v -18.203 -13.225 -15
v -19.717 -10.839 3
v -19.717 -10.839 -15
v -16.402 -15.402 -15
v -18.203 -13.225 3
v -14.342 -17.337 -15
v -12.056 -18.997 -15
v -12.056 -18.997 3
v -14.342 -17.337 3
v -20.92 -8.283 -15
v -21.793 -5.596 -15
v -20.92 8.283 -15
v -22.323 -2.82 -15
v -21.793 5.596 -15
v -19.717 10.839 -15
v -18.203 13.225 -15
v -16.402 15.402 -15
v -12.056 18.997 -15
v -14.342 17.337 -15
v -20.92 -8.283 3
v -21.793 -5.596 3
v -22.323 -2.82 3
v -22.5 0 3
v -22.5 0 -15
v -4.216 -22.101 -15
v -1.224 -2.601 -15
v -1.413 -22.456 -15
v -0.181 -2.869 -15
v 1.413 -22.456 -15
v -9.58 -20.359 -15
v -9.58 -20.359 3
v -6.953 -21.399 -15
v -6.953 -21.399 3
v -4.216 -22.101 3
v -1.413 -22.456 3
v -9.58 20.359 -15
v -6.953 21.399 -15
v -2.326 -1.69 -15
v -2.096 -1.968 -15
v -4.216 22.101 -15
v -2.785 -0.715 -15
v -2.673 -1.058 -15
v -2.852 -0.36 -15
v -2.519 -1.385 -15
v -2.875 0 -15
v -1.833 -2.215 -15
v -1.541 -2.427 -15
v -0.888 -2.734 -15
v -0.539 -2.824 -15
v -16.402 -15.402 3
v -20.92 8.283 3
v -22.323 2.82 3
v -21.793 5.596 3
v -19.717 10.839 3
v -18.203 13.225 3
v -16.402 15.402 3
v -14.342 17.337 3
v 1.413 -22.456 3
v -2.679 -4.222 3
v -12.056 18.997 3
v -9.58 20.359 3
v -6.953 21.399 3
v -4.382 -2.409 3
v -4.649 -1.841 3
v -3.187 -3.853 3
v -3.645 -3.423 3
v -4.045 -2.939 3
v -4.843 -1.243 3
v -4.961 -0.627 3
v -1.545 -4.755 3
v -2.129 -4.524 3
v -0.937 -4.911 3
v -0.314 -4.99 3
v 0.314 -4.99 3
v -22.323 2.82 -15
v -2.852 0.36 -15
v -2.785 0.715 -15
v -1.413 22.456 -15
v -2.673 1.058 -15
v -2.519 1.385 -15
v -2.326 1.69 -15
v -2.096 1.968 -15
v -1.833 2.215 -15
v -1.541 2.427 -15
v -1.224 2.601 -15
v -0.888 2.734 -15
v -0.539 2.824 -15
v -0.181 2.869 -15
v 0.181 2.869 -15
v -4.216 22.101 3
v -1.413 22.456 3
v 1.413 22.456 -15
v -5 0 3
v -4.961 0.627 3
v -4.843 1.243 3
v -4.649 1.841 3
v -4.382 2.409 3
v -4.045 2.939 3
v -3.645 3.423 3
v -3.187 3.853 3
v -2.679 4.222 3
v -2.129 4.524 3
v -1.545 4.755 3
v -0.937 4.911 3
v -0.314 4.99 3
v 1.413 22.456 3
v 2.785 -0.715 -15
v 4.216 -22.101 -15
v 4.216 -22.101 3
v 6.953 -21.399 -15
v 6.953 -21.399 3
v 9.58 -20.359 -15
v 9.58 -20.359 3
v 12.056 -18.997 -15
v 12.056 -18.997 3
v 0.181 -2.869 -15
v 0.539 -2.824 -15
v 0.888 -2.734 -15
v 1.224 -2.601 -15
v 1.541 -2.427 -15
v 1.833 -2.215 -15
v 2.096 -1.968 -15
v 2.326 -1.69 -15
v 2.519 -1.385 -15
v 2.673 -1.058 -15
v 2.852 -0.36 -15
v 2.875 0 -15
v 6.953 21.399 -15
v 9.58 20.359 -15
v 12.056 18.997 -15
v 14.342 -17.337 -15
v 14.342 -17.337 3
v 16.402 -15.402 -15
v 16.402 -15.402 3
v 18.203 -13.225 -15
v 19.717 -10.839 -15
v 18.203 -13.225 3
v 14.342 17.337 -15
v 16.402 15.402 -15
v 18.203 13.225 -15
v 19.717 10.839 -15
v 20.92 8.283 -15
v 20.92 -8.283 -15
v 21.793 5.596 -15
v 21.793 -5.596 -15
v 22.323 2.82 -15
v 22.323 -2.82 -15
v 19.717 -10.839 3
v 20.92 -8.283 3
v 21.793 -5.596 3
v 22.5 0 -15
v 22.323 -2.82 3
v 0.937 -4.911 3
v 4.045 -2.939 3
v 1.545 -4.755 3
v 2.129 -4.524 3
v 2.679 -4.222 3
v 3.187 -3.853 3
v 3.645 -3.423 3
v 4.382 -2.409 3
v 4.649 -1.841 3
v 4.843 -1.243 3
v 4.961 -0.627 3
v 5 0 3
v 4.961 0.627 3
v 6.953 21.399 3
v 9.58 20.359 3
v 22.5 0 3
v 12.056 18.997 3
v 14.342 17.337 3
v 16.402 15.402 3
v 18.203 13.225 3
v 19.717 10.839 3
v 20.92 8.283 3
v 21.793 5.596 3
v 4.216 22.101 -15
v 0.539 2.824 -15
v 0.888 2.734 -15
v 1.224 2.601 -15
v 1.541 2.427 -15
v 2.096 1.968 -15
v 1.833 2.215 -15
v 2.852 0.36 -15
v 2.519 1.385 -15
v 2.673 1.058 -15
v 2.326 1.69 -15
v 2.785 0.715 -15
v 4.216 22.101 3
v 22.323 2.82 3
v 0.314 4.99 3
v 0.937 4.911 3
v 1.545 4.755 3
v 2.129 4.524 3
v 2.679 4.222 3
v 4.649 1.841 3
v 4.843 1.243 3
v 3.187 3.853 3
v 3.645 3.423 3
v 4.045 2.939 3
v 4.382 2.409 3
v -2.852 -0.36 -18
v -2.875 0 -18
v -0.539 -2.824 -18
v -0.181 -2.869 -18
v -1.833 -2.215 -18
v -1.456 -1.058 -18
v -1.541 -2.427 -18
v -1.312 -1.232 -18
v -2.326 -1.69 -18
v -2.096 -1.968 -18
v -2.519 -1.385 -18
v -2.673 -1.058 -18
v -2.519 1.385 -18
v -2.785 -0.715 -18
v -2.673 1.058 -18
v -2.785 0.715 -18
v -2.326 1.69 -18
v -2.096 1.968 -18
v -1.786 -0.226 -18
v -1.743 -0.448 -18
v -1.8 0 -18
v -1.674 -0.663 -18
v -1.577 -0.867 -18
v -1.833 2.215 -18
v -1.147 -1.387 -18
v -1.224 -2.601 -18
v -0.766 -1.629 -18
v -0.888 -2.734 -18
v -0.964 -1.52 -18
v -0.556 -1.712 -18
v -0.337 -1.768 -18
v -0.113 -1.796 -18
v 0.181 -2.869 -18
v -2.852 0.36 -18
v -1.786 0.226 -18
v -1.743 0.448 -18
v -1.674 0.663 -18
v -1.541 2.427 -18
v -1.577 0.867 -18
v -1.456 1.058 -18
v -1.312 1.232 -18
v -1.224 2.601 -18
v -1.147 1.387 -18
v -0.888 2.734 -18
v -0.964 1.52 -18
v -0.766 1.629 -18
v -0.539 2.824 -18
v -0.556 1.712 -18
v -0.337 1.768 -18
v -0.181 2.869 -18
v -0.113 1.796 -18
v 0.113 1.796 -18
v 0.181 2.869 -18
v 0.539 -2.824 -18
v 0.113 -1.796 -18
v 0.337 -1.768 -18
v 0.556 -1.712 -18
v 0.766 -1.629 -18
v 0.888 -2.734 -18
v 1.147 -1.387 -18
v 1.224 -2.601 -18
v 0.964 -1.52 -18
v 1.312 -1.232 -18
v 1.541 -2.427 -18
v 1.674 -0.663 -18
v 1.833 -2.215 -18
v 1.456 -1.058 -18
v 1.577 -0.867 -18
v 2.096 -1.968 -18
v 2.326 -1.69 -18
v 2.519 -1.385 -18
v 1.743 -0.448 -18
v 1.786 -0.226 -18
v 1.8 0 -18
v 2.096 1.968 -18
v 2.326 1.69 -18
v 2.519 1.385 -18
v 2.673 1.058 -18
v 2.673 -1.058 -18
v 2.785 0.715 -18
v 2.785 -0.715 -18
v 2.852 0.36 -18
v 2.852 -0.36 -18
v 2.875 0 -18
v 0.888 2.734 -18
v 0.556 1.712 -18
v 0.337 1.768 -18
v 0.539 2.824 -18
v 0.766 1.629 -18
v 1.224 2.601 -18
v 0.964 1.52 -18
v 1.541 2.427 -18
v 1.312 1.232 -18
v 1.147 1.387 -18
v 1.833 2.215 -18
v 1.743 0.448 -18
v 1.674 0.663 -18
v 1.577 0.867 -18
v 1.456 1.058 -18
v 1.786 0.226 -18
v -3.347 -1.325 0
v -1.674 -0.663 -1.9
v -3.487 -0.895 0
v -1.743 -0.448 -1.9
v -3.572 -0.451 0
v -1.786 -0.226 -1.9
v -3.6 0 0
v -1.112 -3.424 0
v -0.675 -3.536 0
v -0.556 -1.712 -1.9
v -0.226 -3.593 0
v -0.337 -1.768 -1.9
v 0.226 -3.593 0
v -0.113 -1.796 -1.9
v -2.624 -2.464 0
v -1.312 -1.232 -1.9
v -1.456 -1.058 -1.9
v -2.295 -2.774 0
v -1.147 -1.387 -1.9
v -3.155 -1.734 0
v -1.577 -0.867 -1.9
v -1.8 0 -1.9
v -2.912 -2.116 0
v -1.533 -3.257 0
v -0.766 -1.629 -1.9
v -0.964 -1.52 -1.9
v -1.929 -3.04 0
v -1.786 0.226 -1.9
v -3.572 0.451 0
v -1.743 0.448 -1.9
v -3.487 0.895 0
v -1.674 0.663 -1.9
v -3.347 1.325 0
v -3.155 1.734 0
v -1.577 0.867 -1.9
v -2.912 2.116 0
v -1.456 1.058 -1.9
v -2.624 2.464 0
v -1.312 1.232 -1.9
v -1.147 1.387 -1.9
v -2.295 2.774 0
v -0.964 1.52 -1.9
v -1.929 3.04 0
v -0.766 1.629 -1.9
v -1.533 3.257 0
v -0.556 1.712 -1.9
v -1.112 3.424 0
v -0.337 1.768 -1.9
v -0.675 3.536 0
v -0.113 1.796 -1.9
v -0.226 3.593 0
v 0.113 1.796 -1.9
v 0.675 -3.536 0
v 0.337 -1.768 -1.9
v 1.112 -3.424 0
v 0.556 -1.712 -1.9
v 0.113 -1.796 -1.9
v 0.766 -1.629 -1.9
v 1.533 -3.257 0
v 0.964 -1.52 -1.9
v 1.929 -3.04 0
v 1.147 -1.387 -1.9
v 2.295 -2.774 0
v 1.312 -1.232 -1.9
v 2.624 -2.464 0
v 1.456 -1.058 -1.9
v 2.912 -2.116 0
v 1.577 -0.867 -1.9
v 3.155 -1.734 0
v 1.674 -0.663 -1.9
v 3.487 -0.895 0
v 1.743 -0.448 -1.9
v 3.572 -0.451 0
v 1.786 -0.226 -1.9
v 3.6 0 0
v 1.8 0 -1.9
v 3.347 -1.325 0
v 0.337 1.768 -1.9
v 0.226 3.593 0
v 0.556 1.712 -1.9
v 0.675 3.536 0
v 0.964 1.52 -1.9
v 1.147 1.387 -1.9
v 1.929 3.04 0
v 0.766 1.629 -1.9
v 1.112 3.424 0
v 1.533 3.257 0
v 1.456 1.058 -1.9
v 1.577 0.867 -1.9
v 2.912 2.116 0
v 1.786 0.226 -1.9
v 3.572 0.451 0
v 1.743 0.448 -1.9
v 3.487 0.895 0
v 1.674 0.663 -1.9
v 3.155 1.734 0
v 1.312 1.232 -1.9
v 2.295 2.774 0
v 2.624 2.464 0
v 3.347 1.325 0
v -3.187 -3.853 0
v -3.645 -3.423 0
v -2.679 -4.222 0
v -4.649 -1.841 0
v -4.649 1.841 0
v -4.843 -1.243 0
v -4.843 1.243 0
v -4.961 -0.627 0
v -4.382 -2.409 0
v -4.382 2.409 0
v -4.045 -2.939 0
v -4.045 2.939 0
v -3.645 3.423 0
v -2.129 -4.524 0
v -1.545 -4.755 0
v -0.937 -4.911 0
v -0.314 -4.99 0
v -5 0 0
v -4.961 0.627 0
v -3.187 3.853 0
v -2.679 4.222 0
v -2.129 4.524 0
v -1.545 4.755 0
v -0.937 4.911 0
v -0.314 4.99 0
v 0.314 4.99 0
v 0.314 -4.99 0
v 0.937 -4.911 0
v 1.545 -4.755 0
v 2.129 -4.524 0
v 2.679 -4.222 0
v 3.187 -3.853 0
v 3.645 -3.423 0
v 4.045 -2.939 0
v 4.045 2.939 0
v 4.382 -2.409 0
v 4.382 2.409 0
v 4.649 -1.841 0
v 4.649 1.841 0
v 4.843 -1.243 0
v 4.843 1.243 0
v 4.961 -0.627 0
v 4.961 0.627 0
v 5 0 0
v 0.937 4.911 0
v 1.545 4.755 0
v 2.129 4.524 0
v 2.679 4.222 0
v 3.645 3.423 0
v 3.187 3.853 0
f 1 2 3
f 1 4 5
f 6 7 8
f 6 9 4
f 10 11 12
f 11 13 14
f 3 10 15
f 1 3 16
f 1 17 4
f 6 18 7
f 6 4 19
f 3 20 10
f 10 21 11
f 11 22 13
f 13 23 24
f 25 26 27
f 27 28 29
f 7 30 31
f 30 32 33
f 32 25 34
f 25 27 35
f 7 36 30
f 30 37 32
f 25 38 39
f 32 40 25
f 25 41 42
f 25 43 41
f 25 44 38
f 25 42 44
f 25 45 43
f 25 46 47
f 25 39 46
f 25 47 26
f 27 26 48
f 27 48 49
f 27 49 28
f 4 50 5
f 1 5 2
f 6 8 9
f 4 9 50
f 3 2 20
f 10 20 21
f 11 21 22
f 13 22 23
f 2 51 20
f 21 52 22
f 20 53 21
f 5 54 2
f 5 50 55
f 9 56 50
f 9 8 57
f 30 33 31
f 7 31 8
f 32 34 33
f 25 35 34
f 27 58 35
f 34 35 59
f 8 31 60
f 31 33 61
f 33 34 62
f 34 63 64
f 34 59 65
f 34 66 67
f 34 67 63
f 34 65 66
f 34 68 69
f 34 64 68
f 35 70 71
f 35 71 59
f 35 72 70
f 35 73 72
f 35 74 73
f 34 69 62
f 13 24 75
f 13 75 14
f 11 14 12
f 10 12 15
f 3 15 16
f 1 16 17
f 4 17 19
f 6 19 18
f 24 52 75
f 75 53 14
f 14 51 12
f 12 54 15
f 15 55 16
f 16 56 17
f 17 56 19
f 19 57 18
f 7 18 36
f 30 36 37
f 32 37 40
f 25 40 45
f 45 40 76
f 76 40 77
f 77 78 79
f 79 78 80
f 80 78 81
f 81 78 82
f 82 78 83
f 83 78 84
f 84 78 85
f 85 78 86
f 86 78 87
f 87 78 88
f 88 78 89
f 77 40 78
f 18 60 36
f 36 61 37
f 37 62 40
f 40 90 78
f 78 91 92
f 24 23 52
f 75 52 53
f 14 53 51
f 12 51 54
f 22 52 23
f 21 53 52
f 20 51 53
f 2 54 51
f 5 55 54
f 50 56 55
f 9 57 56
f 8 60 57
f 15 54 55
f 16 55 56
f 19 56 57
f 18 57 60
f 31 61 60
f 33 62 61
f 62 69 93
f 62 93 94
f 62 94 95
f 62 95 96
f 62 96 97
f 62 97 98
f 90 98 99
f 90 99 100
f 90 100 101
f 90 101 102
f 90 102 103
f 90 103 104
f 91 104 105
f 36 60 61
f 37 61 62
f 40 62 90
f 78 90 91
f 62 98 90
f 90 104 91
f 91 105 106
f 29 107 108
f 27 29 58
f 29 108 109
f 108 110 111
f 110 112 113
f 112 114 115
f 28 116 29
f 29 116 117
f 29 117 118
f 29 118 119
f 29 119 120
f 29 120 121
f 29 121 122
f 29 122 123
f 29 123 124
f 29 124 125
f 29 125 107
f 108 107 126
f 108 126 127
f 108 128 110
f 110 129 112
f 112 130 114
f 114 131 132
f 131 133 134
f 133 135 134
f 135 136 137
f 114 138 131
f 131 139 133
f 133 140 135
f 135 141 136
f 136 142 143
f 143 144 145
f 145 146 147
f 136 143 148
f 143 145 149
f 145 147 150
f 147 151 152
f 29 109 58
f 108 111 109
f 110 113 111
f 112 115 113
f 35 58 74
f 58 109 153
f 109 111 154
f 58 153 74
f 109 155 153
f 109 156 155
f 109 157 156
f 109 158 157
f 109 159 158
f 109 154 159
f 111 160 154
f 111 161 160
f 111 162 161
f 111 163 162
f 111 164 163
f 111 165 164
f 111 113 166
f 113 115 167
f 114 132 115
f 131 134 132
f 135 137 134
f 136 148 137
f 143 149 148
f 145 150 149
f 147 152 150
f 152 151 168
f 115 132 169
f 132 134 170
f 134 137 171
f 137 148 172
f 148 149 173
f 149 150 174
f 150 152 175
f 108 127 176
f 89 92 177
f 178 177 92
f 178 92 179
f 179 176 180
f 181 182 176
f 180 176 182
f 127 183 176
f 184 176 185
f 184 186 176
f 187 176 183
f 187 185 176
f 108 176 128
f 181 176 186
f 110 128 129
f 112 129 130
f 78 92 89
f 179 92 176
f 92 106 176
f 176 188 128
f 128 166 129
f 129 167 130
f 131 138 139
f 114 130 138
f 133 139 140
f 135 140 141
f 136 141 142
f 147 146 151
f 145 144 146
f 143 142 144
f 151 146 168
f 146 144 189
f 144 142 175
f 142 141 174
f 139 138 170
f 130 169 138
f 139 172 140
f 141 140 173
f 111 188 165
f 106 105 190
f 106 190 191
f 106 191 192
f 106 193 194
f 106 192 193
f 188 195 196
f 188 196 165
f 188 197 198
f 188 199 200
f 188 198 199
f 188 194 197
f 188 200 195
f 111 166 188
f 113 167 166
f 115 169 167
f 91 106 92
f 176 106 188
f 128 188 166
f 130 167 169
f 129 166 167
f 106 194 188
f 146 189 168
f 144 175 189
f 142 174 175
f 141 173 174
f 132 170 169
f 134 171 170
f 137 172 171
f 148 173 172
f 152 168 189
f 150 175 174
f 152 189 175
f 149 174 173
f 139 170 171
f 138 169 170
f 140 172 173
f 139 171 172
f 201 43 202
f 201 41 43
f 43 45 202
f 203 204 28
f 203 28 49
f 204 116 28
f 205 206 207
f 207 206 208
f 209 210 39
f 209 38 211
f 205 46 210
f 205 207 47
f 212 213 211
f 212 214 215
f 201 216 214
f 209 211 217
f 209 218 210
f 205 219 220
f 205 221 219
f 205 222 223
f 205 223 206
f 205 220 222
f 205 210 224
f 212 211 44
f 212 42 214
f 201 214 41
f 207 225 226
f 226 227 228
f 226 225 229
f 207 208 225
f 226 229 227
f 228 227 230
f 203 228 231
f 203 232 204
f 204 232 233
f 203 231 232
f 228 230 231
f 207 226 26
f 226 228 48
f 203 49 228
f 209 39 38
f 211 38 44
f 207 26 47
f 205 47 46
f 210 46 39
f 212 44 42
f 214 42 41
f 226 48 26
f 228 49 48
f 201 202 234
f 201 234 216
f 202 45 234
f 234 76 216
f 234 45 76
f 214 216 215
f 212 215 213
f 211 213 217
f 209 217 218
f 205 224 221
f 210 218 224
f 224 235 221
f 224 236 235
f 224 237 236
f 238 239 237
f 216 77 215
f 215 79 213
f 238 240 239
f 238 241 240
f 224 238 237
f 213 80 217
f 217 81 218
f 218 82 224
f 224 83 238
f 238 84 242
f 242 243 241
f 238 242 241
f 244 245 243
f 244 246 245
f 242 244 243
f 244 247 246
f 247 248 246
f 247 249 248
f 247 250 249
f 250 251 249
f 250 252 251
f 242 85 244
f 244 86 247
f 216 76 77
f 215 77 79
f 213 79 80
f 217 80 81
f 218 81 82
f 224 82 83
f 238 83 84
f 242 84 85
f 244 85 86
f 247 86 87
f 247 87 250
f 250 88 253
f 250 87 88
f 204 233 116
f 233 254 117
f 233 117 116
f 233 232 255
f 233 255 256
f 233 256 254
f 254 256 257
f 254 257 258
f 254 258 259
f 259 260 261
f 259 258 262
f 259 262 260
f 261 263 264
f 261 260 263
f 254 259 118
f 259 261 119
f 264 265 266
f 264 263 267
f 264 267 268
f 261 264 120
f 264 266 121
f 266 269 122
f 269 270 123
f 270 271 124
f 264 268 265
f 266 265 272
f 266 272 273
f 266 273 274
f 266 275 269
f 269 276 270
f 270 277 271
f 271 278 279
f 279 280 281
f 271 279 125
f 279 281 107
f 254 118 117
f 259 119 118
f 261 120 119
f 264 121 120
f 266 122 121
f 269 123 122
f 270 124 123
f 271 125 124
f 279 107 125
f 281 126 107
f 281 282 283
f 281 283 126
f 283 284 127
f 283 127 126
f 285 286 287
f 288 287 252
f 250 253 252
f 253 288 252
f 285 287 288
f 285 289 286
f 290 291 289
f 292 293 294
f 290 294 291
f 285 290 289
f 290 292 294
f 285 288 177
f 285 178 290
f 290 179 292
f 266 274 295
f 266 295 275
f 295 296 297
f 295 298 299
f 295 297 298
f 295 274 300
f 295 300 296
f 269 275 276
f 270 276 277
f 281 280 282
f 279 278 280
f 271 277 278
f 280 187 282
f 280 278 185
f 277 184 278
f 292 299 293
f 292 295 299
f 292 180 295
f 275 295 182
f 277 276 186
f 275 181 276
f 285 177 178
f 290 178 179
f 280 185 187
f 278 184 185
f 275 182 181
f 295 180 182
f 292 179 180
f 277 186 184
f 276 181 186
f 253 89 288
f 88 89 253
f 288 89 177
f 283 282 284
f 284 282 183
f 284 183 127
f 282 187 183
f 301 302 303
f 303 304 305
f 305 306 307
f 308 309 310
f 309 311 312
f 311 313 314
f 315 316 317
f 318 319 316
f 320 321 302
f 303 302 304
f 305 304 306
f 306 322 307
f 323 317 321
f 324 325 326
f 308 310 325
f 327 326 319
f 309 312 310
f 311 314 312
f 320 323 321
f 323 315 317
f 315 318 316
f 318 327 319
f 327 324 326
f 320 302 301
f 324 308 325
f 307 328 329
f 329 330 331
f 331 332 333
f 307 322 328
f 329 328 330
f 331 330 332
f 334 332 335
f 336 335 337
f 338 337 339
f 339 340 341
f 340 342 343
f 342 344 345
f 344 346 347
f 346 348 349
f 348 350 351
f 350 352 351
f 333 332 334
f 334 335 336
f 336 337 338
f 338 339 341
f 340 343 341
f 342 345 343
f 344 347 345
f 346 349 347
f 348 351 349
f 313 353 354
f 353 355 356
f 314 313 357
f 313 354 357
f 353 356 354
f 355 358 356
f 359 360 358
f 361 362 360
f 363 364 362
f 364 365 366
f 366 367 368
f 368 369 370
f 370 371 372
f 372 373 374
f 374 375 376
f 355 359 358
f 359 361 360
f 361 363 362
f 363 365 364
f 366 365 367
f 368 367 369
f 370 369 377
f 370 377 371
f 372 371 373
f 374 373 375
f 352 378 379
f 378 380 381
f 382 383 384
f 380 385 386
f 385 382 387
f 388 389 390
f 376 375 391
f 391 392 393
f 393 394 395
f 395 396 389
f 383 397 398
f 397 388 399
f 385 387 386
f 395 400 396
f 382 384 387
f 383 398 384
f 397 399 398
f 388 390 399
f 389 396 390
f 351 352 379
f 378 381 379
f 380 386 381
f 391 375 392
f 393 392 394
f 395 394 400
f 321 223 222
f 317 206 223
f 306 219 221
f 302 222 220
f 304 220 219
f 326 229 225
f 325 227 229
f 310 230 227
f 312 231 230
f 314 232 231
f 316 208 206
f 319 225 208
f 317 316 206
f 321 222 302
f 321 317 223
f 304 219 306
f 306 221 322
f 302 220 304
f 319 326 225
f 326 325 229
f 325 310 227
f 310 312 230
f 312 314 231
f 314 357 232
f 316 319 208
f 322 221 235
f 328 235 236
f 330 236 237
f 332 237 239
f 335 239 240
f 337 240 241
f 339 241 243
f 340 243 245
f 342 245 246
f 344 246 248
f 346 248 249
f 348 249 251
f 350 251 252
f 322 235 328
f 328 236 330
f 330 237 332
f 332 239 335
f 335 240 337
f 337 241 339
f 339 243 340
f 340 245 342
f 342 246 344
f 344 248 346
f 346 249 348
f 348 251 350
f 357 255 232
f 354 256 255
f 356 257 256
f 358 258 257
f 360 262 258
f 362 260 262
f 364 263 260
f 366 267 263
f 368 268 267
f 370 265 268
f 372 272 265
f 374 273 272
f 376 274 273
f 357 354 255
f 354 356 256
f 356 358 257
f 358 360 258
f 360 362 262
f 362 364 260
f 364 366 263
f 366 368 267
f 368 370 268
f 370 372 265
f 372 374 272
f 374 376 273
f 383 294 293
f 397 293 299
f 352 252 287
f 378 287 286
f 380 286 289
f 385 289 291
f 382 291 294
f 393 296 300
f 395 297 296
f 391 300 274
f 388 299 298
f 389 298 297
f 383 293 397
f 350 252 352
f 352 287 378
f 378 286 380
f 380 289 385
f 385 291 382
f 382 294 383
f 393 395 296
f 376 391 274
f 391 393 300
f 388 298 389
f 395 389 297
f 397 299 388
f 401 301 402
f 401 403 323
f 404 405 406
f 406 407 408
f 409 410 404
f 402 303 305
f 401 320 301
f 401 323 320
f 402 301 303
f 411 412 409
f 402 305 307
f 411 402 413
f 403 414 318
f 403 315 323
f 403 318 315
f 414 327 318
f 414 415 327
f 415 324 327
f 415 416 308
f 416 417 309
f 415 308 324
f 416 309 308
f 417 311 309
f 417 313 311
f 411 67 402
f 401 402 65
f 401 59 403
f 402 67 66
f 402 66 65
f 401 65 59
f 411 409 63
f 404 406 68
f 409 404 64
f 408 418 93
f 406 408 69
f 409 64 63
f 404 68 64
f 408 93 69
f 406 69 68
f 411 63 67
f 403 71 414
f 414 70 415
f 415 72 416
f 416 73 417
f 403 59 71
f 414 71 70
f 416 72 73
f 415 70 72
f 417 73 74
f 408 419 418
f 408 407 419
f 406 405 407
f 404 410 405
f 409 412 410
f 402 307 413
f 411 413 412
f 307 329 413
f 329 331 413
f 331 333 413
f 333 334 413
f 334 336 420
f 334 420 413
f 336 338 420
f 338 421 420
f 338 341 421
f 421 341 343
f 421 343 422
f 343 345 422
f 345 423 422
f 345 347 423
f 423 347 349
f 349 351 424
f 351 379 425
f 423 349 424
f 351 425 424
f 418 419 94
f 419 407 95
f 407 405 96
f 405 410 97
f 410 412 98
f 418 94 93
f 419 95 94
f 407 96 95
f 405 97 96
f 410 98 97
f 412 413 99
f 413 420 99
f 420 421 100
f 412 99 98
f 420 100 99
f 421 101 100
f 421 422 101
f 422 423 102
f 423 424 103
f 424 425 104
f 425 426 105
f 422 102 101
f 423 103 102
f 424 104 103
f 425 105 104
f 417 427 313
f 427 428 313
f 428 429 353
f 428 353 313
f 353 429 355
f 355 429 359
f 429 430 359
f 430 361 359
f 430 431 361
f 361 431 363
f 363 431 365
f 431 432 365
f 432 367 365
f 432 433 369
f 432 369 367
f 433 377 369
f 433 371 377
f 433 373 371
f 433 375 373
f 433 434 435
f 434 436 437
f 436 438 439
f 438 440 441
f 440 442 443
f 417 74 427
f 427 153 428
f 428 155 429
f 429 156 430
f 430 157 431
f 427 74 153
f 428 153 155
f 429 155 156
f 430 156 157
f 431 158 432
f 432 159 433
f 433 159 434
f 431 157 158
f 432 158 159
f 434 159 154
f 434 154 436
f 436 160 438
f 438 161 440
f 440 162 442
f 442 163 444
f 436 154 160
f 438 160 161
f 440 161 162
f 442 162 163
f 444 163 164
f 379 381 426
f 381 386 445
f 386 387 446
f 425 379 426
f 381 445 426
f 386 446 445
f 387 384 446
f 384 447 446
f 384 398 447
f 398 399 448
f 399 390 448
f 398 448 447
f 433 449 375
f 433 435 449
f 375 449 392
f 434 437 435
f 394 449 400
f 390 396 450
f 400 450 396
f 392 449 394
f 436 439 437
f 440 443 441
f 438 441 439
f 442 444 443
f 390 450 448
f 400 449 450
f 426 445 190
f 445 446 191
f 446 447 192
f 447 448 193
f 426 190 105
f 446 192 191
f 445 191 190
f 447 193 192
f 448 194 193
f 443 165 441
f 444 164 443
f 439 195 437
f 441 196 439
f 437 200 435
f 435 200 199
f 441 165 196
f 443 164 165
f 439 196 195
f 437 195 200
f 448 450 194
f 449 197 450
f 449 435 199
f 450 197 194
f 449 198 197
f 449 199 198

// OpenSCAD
$fn = 50;

difference() {
	union() {
		translate(v = [0, 0, -15.0]) {
			cylinder(h = 18, r = 22.5);
		}
		#translate(v = [0, 0, -18.0]) {
			cylinder(h = 18, r = 2.875);
		}
	}
	union() {
		translate(v = [0, 0, 0]) {
			rotate(a = [0, 0, 0]) {
				difference() {
					union() {
						translate(v = [0, 0, -18.0]) {
							cylinder(h = 18, r = 1.5);
						}
						translate(v = [0, 0, -1.9]) {
							cylinder(h = 1.9, r1 = 1.8, r2 = 3.6);
						}
						translate(v = [0, 0, -18.0]) {
							cylinder(h = 18, r = 1.8);
						}
						translate(v = [0, 0, -18.0]) {
							cylinder(h = 18, r = 1.5);
						}
					}
					union();
				}
			}
		}
		#cylinder(h = 3, r = 5.0);
	}
}
